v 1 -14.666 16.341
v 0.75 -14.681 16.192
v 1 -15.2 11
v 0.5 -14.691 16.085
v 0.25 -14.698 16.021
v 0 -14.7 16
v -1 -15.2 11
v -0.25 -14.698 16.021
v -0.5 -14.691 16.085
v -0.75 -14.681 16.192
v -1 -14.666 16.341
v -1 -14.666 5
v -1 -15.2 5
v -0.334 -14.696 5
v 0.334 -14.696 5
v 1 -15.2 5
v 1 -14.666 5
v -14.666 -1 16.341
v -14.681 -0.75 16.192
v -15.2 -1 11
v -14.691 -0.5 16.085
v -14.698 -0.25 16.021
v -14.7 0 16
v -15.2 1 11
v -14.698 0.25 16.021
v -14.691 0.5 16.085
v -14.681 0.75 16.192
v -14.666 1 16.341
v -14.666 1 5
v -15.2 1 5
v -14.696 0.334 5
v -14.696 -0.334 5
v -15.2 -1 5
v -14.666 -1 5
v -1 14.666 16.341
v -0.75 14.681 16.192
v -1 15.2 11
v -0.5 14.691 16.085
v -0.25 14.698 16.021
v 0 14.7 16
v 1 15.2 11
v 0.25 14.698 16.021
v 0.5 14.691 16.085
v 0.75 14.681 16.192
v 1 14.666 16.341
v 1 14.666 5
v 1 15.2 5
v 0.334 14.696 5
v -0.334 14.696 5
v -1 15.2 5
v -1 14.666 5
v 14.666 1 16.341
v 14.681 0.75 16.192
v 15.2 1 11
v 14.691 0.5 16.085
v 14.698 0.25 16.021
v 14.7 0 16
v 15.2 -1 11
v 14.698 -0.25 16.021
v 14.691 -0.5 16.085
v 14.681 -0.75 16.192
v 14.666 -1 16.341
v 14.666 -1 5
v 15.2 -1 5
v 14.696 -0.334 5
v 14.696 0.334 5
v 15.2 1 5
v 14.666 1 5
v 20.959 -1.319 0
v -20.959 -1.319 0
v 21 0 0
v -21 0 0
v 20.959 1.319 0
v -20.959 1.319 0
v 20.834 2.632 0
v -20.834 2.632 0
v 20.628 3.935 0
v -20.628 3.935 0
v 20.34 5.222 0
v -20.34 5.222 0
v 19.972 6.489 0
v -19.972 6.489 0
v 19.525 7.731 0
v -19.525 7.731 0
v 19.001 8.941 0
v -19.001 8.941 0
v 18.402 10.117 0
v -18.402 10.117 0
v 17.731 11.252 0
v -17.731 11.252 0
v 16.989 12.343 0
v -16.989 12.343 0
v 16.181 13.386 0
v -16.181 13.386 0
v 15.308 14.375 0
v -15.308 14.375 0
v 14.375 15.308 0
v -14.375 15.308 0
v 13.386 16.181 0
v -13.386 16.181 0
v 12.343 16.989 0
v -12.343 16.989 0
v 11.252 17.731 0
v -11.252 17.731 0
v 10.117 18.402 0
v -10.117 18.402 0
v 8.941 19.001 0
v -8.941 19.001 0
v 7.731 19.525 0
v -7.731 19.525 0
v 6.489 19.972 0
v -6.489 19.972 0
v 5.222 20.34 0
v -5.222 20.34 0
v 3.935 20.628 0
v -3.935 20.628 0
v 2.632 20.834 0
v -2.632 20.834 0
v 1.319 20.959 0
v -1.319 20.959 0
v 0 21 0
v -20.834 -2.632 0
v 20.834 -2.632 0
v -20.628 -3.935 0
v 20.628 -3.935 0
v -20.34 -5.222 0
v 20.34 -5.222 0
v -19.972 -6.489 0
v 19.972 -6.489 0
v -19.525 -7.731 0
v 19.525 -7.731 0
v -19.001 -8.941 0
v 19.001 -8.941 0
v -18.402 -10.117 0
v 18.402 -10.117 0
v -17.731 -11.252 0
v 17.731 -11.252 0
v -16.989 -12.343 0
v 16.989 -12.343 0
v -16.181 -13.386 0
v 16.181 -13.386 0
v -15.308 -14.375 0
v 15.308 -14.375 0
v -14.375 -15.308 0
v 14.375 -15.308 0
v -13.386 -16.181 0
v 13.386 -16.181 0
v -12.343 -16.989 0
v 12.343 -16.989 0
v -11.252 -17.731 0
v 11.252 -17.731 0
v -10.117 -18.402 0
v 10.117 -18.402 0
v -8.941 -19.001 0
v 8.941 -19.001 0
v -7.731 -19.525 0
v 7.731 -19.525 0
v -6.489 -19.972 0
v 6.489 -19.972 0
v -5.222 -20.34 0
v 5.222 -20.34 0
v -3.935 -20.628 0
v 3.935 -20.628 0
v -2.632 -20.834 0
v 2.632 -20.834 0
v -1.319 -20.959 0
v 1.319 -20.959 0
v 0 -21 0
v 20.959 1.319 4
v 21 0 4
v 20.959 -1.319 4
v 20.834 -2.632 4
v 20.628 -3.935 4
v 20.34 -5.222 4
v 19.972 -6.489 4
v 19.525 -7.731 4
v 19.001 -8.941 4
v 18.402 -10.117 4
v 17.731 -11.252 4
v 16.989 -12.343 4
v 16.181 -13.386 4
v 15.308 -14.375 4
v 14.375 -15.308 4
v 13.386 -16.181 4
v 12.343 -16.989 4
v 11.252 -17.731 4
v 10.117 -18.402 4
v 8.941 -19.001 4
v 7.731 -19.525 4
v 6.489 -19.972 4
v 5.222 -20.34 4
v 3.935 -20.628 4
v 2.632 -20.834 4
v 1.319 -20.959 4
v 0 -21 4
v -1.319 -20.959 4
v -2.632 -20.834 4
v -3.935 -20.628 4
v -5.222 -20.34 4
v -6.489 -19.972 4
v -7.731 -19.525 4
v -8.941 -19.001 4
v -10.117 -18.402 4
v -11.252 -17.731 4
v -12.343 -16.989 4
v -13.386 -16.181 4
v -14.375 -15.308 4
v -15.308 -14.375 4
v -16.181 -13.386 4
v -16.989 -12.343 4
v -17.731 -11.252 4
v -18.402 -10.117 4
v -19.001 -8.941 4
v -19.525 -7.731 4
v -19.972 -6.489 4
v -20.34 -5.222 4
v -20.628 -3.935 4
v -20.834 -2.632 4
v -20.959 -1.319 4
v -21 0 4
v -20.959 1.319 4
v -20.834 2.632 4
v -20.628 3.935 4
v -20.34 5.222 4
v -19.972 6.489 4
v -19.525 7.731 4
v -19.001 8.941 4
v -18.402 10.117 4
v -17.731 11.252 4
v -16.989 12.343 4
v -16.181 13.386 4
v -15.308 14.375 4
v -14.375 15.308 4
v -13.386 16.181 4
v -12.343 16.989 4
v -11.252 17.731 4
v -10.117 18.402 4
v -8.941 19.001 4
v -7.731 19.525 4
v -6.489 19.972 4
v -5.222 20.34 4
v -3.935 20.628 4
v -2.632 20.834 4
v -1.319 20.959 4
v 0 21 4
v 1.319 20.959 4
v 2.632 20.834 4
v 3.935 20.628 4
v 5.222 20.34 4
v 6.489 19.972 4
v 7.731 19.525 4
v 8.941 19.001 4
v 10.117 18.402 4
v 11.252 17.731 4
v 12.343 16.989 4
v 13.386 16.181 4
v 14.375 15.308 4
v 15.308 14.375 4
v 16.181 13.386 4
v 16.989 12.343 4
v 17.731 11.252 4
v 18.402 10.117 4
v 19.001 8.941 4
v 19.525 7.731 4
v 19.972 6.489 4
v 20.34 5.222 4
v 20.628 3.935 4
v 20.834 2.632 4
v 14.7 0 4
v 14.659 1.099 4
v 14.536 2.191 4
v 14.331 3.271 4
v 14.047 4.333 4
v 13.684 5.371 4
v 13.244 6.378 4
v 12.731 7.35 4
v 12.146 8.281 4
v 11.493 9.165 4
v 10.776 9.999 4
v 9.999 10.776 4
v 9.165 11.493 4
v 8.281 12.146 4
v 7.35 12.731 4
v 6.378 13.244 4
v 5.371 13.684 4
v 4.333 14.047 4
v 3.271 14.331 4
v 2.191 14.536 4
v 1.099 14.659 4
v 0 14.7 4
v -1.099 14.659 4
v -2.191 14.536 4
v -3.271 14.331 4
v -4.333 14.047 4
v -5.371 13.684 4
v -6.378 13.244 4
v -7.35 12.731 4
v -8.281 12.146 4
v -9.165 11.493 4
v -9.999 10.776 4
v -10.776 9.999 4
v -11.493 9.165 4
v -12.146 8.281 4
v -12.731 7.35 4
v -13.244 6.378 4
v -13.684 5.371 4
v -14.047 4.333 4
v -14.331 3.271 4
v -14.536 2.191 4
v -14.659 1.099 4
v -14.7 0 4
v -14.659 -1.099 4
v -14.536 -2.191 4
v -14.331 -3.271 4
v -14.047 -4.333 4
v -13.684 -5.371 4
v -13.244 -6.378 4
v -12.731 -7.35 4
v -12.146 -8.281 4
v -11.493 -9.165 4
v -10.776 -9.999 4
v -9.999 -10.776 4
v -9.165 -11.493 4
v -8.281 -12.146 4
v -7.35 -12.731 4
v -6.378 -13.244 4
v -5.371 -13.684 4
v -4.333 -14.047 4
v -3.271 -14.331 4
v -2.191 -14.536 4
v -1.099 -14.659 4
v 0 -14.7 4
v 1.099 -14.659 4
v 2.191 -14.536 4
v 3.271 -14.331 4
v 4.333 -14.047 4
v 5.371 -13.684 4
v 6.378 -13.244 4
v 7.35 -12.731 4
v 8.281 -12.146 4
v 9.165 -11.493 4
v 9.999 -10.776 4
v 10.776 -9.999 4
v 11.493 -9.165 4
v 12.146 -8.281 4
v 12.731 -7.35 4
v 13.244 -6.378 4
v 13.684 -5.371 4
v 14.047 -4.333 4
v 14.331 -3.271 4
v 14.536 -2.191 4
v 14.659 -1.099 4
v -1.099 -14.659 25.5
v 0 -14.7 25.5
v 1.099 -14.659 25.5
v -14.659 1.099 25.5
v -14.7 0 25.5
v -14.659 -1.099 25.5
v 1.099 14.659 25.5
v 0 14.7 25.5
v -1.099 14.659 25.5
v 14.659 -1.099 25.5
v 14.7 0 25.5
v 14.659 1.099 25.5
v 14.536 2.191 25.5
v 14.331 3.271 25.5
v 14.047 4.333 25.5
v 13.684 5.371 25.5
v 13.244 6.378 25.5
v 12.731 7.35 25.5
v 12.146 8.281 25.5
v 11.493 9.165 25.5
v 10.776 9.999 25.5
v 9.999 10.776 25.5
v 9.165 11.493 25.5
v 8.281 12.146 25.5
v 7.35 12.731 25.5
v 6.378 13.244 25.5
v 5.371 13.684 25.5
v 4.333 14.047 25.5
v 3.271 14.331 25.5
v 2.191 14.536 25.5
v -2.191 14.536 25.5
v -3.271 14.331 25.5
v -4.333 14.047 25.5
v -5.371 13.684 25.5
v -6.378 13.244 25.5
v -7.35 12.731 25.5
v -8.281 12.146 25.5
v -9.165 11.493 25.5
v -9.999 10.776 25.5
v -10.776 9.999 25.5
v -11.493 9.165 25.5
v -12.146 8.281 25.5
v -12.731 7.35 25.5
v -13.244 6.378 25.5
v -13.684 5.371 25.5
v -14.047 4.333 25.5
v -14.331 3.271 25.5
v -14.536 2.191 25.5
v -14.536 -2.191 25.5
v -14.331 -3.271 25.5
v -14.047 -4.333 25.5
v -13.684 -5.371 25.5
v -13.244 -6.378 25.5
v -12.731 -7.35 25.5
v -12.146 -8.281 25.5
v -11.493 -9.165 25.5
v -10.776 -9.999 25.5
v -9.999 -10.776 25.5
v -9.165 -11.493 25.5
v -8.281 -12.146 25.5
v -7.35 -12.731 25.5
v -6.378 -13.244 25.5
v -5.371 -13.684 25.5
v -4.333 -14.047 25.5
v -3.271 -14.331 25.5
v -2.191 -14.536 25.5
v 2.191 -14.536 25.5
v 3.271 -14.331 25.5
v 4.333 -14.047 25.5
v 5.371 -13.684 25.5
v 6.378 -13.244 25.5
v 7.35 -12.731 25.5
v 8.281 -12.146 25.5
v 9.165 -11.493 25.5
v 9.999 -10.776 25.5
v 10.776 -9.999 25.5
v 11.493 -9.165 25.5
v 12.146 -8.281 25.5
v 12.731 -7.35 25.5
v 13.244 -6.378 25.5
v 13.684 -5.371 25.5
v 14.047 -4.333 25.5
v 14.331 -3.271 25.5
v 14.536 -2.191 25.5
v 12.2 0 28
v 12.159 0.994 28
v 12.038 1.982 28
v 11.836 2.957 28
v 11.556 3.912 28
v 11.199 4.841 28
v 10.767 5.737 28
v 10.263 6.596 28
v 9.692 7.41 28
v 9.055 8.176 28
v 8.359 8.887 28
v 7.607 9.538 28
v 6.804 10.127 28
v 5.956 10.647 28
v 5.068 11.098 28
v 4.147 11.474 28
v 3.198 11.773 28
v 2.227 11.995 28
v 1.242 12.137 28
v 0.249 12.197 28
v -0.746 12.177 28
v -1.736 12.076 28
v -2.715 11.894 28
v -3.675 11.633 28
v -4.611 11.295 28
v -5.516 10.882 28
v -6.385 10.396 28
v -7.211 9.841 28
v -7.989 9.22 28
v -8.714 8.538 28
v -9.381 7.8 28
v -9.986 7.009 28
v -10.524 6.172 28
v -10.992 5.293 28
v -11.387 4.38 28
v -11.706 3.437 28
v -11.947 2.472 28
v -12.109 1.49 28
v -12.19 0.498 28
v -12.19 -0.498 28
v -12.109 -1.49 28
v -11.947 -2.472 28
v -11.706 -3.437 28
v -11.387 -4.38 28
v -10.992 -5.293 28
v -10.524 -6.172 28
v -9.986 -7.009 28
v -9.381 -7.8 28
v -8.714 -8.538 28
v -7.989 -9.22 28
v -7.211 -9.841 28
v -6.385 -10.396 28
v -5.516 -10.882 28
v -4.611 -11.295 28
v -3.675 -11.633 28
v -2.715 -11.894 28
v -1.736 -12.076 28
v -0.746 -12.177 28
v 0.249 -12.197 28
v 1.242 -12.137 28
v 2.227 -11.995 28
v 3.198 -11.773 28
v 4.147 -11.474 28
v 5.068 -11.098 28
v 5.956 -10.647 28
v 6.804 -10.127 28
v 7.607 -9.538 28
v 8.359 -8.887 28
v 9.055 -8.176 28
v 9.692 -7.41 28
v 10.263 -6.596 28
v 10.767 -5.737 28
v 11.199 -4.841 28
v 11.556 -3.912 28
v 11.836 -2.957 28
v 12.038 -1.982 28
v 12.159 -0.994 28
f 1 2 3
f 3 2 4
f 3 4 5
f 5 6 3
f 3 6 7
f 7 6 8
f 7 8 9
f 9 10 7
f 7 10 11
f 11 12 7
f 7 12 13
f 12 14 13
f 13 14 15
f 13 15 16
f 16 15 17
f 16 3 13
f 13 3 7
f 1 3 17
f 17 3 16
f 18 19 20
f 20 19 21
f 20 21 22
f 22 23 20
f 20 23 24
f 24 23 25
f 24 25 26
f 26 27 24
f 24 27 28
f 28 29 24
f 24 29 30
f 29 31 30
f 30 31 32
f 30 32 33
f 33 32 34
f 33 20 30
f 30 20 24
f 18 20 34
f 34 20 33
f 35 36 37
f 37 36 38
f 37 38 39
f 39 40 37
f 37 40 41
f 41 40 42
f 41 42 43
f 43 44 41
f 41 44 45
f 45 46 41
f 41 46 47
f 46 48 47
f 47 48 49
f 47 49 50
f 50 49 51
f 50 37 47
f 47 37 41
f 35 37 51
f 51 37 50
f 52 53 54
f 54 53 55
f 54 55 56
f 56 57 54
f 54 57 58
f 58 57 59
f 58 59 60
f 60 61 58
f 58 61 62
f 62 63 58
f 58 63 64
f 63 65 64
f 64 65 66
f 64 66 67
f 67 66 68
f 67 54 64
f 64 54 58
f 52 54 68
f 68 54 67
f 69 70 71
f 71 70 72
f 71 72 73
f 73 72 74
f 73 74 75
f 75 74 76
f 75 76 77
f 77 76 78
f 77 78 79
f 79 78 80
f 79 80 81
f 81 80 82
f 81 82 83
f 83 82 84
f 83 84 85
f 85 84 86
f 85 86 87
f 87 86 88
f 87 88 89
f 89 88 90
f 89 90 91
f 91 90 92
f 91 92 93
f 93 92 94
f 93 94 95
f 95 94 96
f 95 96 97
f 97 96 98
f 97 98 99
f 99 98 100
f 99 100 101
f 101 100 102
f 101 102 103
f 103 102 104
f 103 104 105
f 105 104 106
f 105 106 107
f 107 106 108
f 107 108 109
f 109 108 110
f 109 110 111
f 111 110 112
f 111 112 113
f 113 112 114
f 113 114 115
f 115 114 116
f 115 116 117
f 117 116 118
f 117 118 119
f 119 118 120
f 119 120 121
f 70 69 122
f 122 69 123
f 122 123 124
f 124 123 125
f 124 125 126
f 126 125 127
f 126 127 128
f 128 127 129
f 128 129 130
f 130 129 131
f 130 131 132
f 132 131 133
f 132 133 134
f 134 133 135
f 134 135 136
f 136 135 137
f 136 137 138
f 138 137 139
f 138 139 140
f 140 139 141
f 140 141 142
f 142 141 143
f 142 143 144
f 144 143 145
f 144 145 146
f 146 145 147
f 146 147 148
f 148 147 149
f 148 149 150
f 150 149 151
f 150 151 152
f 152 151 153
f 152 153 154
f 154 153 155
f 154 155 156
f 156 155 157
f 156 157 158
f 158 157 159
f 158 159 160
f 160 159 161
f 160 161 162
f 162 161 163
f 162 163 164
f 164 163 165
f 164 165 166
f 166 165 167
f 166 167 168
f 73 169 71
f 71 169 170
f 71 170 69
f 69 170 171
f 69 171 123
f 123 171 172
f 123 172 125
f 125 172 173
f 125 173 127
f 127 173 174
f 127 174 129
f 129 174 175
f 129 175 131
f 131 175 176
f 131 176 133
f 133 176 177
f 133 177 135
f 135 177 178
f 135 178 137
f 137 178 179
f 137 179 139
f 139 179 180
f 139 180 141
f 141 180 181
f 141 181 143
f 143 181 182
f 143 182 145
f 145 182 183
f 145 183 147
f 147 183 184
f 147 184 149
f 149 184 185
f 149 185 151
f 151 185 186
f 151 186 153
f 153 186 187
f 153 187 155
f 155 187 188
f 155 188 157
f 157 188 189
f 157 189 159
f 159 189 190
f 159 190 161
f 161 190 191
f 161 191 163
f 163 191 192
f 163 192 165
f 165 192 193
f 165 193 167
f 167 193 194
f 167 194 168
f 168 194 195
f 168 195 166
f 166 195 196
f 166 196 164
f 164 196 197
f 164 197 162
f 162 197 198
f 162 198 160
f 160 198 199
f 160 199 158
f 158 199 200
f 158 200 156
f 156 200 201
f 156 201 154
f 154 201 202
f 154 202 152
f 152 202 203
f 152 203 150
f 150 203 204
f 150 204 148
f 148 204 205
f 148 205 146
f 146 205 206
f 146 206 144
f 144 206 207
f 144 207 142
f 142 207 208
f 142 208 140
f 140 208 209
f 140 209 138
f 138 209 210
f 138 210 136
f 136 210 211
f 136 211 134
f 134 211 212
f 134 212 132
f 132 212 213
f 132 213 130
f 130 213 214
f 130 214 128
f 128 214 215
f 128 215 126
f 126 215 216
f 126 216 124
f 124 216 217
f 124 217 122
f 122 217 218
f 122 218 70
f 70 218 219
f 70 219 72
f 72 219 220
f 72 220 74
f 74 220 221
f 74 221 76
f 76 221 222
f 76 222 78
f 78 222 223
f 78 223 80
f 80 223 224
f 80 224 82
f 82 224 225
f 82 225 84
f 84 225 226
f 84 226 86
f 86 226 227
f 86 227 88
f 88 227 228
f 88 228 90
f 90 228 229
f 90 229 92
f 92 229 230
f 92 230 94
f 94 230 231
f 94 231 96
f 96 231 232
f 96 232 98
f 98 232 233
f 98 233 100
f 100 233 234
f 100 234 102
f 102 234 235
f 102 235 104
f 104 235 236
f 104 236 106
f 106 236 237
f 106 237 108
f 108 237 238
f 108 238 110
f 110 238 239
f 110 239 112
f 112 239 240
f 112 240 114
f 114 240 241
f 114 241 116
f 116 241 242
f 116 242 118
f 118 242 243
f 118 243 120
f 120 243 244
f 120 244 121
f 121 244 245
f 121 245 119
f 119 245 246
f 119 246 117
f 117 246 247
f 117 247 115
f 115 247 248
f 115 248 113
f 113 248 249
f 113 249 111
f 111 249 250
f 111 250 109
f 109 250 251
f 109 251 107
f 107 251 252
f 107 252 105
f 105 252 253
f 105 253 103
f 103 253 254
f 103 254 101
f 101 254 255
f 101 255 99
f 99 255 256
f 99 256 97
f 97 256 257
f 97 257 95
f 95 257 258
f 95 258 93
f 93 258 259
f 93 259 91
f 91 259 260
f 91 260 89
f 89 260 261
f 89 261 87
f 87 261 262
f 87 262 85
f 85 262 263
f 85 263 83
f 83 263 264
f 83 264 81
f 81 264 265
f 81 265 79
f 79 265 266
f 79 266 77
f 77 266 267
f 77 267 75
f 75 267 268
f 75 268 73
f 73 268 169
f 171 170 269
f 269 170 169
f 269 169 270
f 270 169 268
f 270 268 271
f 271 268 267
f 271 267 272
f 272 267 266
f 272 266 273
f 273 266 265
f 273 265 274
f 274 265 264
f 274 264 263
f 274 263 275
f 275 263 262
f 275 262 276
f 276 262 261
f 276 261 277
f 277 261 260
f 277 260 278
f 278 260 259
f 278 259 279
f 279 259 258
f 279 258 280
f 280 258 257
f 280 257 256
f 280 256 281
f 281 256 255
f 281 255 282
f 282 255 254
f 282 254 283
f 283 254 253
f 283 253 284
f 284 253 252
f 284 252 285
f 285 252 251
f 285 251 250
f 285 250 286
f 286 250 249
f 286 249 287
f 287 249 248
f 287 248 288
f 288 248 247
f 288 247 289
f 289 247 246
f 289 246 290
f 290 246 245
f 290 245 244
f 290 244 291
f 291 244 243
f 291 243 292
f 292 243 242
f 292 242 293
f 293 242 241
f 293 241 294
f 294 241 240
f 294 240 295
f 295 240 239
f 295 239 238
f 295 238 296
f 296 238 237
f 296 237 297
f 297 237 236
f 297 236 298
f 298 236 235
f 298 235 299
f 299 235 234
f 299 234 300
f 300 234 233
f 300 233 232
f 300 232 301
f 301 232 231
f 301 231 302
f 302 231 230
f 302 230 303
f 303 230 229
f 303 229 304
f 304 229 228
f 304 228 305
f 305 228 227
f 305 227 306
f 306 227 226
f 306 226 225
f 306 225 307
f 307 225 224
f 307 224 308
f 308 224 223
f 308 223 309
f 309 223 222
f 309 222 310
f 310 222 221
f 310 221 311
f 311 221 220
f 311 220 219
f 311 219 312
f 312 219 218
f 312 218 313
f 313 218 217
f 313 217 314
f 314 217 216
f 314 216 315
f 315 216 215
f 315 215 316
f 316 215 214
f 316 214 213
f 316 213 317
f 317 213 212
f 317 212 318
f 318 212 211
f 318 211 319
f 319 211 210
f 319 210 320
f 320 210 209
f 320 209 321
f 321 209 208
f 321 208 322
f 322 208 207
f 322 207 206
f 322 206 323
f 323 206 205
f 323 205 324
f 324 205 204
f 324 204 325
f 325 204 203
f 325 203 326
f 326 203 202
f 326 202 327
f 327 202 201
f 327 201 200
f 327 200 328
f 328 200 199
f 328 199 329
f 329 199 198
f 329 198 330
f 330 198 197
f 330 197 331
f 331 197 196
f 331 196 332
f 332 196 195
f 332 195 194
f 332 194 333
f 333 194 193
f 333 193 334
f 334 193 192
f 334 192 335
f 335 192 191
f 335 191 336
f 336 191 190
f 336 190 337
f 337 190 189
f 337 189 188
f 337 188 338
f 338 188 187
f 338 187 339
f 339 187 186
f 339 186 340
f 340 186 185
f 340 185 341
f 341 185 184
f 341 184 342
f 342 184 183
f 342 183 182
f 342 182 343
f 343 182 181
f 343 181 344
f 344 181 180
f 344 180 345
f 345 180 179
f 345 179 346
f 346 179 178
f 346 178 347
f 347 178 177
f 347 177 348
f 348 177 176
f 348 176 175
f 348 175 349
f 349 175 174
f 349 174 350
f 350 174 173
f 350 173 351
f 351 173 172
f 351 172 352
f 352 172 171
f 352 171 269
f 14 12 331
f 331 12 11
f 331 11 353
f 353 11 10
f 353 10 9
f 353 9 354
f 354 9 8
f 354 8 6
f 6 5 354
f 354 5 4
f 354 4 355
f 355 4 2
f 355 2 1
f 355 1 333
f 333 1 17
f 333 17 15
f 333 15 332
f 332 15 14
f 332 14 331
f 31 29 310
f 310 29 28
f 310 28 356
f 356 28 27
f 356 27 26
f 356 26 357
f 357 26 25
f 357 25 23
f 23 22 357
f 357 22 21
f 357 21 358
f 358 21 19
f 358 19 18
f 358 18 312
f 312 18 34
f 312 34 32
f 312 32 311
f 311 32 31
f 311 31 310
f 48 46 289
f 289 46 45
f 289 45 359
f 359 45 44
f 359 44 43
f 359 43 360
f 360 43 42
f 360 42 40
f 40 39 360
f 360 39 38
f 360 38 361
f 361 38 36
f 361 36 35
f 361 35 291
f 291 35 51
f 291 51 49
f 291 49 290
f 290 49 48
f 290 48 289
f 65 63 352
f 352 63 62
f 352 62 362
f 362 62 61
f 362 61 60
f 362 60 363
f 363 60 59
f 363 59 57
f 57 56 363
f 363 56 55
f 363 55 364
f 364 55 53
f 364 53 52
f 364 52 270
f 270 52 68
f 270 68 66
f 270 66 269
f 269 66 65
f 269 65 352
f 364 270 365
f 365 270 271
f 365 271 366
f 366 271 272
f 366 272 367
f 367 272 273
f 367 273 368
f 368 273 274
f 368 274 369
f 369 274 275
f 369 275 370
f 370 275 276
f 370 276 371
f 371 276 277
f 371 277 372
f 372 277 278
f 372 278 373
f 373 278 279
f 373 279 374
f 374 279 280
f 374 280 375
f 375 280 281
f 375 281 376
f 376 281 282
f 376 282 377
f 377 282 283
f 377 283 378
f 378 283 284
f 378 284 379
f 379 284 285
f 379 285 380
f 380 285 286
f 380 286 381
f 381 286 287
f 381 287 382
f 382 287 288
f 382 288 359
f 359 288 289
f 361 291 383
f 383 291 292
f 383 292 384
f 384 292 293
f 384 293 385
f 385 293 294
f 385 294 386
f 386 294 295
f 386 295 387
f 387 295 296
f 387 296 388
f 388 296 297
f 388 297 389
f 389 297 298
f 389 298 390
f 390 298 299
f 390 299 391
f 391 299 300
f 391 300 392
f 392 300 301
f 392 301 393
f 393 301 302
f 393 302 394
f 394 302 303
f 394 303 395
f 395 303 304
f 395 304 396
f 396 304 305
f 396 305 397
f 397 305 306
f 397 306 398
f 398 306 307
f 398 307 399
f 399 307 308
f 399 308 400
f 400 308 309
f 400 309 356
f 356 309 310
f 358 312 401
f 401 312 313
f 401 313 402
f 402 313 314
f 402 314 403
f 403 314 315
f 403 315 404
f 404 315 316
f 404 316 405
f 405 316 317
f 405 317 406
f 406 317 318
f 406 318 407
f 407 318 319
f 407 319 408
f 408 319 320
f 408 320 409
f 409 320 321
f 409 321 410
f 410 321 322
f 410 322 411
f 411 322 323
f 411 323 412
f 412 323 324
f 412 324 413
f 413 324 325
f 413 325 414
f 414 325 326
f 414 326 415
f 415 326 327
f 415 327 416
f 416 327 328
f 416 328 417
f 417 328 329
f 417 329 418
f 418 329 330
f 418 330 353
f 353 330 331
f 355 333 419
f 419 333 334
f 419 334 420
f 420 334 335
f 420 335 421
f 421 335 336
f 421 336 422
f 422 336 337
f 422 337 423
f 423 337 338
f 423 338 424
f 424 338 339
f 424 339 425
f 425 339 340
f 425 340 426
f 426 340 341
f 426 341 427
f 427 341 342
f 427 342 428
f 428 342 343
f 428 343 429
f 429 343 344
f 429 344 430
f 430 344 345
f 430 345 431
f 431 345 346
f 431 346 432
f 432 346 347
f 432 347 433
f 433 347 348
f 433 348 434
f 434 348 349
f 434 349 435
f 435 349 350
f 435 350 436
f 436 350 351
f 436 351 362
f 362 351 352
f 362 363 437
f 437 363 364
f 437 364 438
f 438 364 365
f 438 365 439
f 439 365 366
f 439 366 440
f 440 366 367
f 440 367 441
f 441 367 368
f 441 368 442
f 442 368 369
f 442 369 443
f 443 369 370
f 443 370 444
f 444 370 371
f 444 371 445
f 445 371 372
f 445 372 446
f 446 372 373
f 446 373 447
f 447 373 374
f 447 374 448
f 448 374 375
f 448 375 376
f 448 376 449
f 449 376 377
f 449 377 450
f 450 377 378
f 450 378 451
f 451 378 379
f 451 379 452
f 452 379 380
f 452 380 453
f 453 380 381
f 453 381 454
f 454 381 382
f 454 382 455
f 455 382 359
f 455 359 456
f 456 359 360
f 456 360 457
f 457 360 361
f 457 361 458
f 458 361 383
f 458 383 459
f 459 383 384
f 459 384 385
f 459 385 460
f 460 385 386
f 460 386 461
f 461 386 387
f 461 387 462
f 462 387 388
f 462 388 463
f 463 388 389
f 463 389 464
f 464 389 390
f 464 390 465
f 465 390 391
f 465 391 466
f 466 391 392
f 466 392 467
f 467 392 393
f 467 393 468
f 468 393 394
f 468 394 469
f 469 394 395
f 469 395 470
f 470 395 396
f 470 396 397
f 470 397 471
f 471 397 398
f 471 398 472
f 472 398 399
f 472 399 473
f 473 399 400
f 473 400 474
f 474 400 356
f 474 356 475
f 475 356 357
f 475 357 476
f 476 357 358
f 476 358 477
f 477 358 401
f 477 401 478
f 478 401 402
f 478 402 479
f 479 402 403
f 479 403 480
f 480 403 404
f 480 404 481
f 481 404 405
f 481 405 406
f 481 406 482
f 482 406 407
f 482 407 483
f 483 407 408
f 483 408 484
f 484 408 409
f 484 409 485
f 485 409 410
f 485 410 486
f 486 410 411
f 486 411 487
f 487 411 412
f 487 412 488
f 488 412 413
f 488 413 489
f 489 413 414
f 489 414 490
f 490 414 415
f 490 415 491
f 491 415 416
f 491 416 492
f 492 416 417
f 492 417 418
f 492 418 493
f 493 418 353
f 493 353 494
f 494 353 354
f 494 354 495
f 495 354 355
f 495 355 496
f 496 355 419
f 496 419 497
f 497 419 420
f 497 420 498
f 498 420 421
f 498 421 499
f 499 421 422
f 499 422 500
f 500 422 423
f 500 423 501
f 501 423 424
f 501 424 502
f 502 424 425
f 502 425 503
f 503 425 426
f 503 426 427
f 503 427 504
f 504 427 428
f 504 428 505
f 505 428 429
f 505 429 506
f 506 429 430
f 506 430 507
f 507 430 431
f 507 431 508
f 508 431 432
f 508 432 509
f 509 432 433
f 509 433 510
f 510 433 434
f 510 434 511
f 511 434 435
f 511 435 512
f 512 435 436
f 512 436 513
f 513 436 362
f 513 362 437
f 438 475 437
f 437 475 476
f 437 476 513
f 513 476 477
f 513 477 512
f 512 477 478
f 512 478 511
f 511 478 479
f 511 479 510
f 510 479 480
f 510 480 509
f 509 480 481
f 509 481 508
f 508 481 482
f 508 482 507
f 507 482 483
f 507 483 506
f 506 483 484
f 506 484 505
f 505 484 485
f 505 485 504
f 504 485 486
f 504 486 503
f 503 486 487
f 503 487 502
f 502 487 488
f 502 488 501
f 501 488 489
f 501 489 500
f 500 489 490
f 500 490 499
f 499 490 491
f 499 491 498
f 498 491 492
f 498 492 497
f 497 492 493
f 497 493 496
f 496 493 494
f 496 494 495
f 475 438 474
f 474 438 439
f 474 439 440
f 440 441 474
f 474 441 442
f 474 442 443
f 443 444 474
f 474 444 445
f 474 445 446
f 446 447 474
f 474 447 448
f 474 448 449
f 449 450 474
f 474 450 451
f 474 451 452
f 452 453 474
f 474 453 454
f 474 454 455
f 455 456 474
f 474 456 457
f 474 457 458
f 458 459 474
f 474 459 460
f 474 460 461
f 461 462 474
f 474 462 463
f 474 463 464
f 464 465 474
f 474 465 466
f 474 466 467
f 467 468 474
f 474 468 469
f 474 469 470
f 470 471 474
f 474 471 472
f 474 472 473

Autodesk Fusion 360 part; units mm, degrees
sketch "End cap profile" plane through (0, 0, 0) normal (0, 1, 0) x (1, 0, 0)
  line L0 (0, 0) -> (21, 0)
  line L1 (21, 0) -> (21, -4)
  line L2 (21, -4) -> (14.7, -4)
  line L3 (14.7, -4) -> (14.7, -25.5)
  line L4 (14.7, -25.5) -> (12.2, -28)
  line L5 (12.2, -28) -> (0, -28)
  line L6 (0, -28) -> (0, 0)
  dimension "d76" = 21
  dimension "d77" = 4
  dimension "d78" = 14.7
  dimension "d79" = 28
  dimension "d80" = 2.5
  dimension "d81" = 2.5
revolve "End cap revolve" add sketch "End cap profile" angle 360 about axis through (0, 0, 1.75) along (0, 0, 1)
sketch "Crush rib" plane through (0, 0, 0) normal (0, 1, 0) x (1, 0, 0)
  line L0 (13.7, -5) -> (15.2, -5)
  line L1 (15.2, -5) -> (15.2, -11)
  line L2 (15.2, -11) -> (13.7, -26)
  line L3 (13.7, -26) -> (13.7, -5)
  dimension "d83" = 13.7
  dimension "d84" = 5
  dimension "d85" = 15.2
  dimension "d86" = 26
  dimension "d87" = 11
extrude "Crush rib (1)" add sketch "Crush rib" along normal mid plane 2
pattern_circular "Crush ribs" count 4 over 360 about axis through (0, 0, 1.75) along (0, 0, 1) of "Crush rib (1)"
equation "rodOuterDiameter = 33.4 mm" comment "pipe OD the flange exceeds"
equation "pipeInnerDiameter = 30.0 mm" comment "MEASURED bore, not the spec"
equation "endCapFlangeProud = 4.3 mm" comment "flange beyond the pipe OD"
equation "endCapFlangeThickness = 4.0 mm" comment "flange thickness"
equation "endCapStemLength = 24.0 mm" comment "stem depth into the bore"
equation "endCapStemDiameter = pipeInnerDiameter - 0.6 mm" comment "slip fit"
equation "endCapRibDiameter = pipeInnerDiameter + 0.4 mm" comment "crush fit on ribs"
equation "endCapTipChamfer = 2.5 mm" comment "lead-in at the stem tip"
equation "endCapRibWidth = 2.0 mm" comment "rib width"
equation "endCapRibCount = 4" comment "ribs around the stem"
equation "endCapRibGripLength = 6.0 mm" comment "full-height rib band"
equation "d76 = rodOuterDiameter / 2 + endCapFlangeProud"
equation "d77 = endCapFlangeThickness"
equation "d78 = endCapStemDiameter / 2"
equation "d79 = endCapFlangeThickness + endCapStemLength"
equation "d80 = endCapTipChamfer"
equation "d81 = endCapTipChamfer"
equation "d83 = endCapStemDiameter / 2 - 1 mm"
equation "d84 = endCapFlangeThickness + 1 mm"
equation "d85 = endCapRibDiameter / 2"
equation "d86 = endCapFlangeThickness + endCapStemLength - 2 mm"
equation "d87 = endCapFlangeThickness + 1 mm + endCapRibGripLength"
equation "d88 = endCapRibWidth"
equation "d90 = endCapRibCount"
